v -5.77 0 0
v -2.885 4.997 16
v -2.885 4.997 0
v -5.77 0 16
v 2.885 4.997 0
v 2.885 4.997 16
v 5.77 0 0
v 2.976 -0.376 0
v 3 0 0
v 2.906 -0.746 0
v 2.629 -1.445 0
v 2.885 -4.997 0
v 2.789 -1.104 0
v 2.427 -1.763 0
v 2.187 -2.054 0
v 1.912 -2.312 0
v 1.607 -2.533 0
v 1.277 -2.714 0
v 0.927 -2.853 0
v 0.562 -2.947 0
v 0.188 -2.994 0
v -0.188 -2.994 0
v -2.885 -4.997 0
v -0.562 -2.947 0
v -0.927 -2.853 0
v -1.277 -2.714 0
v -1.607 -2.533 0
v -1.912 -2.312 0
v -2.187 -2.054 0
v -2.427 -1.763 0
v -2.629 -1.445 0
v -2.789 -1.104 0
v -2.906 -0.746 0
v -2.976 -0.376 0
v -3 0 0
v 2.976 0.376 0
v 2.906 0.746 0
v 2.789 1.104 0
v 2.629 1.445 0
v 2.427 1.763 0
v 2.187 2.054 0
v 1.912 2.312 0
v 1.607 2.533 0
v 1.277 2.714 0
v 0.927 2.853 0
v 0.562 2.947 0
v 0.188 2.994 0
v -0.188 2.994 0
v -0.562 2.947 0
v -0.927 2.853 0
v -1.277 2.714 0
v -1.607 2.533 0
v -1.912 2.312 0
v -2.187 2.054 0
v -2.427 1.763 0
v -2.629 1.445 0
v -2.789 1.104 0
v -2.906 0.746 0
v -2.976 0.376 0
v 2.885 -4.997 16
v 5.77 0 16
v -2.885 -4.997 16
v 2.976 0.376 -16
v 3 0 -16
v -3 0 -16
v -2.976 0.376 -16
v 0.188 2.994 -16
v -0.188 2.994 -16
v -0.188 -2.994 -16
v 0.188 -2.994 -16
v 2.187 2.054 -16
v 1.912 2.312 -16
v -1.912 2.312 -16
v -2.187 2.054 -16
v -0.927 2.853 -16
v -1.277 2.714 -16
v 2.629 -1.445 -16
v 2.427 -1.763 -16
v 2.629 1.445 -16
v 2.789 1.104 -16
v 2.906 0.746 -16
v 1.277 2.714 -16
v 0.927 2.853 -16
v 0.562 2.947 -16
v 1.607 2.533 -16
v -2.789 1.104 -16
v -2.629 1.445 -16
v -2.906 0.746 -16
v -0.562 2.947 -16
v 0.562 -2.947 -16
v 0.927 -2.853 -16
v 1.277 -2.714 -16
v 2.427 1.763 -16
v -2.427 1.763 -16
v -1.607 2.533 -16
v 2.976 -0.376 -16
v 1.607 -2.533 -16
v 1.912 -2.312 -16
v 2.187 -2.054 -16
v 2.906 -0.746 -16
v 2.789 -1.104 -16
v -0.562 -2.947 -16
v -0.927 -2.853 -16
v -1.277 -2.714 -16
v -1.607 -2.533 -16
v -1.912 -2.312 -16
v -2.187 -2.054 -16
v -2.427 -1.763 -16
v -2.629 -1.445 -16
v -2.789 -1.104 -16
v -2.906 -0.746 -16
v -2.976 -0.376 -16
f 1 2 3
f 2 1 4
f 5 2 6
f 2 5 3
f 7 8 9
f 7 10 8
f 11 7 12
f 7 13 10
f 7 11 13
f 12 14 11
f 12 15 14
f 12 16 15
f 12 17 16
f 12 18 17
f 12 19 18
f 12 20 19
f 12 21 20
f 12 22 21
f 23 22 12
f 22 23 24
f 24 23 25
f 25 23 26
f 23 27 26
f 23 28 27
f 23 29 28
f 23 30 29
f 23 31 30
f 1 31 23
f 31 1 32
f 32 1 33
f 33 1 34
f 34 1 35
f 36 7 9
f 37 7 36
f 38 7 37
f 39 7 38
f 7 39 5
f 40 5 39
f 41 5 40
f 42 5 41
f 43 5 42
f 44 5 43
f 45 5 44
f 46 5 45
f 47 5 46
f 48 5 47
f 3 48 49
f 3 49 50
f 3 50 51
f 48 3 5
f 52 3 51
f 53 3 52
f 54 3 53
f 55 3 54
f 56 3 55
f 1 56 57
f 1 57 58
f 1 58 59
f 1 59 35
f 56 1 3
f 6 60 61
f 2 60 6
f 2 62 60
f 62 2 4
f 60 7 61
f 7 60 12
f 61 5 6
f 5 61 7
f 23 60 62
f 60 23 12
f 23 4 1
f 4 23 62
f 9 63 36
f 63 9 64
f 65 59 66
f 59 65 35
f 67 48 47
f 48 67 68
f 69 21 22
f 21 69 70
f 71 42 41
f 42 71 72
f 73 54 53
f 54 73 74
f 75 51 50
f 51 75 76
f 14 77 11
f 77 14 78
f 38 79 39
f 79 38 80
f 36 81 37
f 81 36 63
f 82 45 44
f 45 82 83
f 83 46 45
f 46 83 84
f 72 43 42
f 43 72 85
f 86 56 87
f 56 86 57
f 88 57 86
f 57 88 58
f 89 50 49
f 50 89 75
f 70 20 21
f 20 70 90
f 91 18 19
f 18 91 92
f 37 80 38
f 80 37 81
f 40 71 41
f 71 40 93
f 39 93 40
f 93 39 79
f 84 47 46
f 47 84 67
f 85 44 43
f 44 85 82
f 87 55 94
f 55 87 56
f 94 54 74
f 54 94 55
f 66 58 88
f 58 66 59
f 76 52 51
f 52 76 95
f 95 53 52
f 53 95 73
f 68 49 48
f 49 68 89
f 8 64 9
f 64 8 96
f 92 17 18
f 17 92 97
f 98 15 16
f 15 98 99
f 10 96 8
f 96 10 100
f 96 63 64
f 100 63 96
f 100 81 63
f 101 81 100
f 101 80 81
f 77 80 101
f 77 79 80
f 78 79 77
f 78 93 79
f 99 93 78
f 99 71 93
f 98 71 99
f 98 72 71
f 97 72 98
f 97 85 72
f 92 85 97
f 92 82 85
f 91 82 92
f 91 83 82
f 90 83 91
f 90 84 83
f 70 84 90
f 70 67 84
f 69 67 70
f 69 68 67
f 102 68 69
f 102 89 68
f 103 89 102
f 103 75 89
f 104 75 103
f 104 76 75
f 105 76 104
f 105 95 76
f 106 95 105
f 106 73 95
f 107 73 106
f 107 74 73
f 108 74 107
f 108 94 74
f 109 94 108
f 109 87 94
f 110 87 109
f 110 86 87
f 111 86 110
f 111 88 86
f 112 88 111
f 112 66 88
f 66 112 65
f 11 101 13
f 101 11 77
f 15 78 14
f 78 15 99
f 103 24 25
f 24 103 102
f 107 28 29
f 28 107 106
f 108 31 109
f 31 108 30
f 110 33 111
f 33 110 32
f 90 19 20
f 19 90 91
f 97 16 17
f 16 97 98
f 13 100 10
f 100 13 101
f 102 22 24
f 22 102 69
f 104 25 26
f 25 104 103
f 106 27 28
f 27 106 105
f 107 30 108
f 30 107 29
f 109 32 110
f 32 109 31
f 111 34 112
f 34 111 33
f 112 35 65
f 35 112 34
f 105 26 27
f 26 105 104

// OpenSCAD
$fn = 50;


difference() {
	union() {
		translate(v = [0, 0, 0]) {
			rotate(a = [0, 0, 0]) {
				translate(v = [0, 0, 0]) {
					rotate(a = [0, 0, 0]) {
						linear_extrude(height = 16) {
							polygon(points = [[5.7700000000, 0.0000000000], [2.8850000000, 4.9969665798], [-2.8850000000, 4.9969665798], [-5.7700000000, 0.0000000000], [-2.8850000000, -4.9969665798], [2.8850000000, -4.9969665798]]);
						}
					}
				}
			}
		}
		translate(v = [0, 0, -16]) {
			rotate(a = [0, 0, 0]) {
				cylinder(h = 16, r = 3.0000000000);
			}
		}
	}
	union();
}
